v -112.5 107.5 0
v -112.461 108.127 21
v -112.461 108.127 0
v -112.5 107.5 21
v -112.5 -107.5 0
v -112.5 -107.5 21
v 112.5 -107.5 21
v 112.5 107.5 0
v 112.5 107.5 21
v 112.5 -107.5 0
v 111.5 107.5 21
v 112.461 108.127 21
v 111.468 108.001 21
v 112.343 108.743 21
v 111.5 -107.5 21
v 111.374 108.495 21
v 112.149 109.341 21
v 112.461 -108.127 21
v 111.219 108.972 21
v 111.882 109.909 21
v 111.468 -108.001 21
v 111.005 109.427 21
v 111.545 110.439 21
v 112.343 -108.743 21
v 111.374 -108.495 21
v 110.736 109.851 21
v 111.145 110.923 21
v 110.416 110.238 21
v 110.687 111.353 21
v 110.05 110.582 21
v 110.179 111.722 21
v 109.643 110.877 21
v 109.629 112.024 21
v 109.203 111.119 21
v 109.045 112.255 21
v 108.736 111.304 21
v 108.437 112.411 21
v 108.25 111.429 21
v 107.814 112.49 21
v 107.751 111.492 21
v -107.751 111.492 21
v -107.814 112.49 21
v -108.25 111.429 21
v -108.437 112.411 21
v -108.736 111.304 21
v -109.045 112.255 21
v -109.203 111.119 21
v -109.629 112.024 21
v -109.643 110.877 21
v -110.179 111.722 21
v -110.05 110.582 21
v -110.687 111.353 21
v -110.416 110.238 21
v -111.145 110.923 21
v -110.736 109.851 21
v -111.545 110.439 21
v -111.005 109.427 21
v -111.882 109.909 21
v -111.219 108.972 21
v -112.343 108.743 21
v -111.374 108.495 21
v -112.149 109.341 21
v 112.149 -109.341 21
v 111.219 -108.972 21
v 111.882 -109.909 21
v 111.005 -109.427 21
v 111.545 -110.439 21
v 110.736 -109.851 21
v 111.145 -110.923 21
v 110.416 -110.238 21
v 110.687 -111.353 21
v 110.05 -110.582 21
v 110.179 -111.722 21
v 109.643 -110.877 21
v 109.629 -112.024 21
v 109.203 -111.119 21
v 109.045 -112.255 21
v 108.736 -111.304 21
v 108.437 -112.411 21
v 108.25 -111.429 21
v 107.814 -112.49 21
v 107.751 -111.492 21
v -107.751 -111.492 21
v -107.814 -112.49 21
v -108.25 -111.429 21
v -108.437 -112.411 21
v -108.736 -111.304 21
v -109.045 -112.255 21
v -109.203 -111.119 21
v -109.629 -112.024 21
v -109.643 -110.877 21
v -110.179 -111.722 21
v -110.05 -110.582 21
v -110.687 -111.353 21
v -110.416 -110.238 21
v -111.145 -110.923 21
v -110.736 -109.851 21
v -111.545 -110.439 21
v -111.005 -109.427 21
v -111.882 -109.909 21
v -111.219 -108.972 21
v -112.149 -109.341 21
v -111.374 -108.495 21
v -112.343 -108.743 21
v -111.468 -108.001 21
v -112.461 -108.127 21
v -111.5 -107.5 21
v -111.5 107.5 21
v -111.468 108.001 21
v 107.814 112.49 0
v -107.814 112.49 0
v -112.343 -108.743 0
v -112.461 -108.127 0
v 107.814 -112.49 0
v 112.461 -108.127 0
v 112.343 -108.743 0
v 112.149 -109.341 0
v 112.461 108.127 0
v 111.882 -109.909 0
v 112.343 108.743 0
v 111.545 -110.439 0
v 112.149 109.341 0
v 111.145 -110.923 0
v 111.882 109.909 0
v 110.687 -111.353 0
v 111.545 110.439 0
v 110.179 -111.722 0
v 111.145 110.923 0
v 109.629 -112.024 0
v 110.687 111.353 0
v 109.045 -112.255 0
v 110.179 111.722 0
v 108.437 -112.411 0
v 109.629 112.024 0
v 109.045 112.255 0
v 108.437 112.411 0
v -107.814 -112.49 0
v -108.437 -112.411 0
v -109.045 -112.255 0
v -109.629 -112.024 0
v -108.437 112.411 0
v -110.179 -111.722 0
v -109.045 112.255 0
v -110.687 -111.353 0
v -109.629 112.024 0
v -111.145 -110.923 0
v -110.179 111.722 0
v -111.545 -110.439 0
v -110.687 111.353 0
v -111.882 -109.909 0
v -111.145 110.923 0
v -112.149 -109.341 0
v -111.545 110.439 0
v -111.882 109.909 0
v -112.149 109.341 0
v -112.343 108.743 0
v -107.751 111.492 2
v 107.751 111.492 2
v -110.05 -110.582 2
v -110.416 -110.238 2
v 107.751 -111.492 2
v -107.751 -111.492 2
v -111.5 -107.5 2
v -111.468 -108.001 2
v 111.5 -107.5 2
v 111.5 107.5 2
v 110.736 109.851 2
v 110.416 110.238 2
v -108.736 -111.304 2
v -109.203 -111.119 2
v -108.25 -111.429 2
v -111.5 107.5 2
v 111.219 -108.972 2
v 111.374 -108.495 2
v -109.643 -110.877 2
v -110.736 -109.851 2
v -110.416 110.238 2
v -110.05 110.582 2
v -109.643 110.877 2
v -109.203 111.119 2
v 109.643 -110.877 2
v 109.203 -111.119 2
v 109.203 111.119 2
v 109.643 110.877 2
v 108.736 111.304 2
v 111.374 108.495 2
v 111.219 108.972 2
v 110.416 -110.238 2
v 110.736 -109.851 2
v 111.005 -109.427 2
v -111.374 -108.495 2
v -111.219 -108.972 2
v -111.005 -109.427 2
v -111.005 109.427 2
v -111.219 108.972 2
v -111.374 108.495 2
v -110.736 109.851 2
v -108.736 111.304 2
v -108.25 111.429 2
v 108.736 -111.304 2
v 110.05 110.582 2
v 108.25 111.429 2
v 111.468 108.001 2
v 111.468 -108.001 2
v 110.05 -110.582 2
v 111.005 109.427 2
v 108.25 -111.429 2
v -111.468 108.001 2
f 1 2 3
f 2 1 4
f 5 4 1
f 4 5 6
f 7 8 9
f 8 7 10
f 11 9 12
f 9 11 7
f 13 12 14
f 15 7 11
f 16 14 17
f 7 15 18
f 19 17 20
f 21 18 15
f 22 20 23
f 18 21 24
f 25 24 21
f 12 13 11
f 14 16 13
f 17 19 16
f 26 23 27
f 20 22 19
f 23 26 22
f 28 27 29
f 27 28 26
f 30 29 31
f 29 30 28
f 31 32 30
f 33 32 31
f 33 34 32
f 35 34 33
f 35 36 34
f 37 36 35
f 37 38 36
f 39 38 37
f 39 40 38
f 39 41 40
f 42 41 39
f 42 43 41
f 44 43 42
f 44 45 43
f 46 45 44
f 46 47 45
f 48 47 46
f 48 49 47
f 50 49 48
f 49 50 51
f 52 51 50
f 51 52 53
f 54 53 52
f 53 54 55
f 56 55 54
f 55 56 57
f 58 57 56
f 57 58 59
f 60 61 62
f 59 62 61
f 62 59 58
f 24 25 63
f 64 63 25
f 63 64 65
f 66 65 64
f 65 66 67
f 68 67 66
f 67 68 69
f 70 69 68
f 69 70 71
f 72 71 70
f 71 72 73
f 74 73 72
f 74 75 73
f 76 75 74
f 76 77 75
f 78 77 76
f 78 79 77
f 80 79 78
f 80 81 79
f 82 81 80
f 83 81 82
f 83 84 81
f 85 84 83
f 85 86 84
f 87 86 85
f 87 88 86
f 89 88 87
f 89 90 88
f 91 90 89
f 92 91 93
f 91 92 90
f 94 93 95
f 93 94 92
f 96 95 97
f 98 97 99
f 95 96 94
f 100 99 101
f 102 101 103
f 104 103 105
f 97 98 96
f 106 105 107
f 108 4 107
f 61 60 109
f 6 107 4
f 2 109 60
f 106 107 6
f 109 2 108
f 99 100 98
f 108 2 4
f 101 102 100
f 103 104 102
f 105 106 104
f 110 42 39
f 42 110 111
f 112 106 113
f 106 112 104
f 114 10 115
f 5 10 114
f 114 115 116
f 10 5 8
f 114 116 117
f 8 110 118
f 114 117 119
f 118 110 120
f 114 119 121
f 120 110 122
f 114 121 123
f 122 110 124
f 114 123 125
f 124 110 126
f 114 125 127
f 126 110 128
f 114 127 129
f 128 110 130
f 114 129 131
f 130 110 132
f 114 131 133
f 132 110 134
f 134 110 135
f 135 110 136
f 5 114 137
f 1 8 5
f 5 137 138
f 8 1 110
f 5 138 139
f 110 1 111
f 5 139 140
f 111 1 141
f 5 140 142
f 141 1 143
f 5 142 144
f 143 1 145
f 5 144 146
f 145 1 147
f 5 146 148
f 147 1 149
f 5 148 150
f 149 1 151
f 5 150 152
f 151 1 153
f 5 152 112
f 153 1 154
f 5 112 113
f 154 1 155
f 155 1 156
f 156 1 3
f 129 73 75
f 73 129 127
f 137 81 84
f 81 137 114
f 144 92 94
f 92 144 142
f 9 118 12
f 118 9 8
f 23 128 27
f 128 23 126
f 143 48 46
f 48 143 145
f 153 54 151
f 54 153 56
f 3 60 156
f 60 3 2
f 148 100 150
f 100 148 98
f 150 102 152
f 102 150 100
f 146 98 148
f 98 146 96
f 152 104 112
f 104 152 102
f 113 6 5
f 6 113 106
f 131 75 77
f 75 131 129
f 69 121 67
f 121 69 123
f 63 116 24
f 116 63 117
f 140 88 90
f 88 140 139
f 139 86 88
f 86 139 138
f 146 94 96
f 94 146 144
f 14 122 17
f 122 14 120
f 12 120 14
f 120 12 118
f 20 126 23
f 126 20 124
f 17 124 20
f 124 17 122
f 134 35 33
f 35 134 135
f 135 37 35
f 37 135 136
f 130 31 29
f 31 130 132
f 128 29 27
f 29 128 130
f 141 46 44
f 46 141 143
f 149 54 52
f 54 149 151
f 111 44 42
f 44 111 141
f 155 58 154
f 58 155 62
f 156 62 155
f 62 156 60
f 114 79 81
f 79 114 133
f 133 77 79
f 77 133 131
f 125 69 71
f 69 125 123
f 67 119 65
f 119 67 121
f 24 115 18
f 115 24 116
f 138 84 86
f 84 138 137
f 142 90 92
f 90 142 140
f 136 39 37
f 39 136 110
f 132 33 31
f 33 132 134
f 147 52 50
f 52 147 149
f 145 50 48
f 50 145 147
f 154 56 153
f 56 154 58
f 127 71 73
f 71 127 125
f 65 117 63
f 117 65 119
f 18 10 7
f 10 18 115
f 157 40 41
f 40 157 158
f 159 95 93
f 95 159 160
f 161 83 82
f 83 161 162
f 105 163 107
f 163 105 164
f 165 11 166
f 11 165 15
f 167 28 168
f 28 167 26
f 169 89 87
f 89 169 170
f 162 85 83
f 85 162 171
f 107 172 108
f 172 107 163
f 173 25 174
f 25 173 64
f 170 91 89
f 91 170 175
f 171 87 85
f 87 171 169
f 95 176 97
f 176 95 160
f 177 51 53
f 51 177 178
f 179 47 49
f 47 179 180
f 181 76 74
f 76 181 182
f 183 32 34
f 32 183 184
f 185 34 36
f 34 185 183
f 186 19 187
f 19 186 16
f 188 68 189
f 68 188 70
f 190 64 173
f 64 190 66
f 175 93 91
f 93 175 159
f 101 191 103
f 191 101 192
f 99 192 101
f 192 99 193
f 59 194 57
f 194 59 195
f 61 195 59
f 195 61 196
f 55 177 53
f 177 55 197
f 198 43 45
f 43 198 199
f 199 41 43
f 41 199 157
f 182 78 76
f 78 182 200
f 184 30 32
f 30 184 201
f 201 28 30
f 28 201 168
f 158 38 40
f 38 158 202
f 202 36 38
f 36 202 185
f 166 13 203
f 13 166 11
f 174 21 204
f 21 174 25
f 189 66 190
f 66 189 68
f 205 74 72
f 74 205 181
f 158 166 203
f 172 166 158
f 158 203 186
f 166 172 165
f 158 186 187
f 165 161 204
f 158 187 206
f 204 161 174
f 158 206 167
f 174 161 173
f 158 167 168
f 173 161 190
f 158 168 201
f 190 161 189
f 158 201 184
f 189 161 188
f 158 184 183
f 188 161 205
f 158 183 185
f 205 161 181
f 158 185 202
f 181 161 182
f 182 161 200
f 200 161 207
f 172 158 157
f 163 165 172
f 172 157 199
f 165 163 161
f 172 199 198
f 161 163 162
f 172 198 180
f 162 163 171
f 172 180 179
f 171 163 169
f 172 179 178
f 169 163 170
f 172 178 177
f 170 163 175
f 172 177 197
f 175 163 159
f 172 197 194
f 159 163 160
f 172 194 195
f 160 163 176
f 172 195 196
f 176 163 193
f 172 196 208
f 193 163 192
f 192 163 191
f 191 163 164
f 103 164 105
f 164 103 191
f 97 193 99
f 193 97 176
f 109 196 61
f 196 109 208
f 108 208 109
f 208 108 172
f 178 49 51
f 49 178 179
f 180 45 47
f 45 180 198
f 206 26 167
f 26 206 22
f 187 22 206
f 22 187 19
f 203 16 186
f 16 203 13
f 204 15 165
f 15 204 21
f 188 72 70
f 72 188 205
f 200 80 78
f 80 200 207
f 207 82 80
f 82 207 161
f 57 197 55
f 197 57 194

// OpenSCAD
$fn = 50;


difference() {
	union() {
		hull() {
			translate(v = [-107.5000000000, 107.5000000000, 0]) {
				cylinder(h = 21, r = 5);
			}
			translate(v = [107.5000000000, 107.5000000000, 0]) {
				cylinder(h = 21, r = 5);
			}
			translate(v = [-107.5000000000, -107.5000000000, 0]) {
				cylinder(h = 21, r = 5);
			}
			translate(v = [107.5000000000, -107.5000000000, 0]) {
				cylinder(h = 21, r = 5);
			}
		}
	}
	union() {
		translate(v = [0, 0, 2]) {
			hull() {
				translate(v = [-107.5000000000, 107.5000000000, 0]) {
					cylinder(h = 19, r = 4);
				}
				translate(v = [107.5000000000, 107.5000000000, 0]) {
					cylinder(h = 19, r = 4);
				}
				translate(v = [-107.5000000000, -107.5000000000, 0]) {
					cylinder(h = 19, r = 4);
				}
				translate(v = [107.5000000000, -107.5000000000, 0]) {
					cylinder(h = 19, r = 4);
				}
			}
		}
	}
}
